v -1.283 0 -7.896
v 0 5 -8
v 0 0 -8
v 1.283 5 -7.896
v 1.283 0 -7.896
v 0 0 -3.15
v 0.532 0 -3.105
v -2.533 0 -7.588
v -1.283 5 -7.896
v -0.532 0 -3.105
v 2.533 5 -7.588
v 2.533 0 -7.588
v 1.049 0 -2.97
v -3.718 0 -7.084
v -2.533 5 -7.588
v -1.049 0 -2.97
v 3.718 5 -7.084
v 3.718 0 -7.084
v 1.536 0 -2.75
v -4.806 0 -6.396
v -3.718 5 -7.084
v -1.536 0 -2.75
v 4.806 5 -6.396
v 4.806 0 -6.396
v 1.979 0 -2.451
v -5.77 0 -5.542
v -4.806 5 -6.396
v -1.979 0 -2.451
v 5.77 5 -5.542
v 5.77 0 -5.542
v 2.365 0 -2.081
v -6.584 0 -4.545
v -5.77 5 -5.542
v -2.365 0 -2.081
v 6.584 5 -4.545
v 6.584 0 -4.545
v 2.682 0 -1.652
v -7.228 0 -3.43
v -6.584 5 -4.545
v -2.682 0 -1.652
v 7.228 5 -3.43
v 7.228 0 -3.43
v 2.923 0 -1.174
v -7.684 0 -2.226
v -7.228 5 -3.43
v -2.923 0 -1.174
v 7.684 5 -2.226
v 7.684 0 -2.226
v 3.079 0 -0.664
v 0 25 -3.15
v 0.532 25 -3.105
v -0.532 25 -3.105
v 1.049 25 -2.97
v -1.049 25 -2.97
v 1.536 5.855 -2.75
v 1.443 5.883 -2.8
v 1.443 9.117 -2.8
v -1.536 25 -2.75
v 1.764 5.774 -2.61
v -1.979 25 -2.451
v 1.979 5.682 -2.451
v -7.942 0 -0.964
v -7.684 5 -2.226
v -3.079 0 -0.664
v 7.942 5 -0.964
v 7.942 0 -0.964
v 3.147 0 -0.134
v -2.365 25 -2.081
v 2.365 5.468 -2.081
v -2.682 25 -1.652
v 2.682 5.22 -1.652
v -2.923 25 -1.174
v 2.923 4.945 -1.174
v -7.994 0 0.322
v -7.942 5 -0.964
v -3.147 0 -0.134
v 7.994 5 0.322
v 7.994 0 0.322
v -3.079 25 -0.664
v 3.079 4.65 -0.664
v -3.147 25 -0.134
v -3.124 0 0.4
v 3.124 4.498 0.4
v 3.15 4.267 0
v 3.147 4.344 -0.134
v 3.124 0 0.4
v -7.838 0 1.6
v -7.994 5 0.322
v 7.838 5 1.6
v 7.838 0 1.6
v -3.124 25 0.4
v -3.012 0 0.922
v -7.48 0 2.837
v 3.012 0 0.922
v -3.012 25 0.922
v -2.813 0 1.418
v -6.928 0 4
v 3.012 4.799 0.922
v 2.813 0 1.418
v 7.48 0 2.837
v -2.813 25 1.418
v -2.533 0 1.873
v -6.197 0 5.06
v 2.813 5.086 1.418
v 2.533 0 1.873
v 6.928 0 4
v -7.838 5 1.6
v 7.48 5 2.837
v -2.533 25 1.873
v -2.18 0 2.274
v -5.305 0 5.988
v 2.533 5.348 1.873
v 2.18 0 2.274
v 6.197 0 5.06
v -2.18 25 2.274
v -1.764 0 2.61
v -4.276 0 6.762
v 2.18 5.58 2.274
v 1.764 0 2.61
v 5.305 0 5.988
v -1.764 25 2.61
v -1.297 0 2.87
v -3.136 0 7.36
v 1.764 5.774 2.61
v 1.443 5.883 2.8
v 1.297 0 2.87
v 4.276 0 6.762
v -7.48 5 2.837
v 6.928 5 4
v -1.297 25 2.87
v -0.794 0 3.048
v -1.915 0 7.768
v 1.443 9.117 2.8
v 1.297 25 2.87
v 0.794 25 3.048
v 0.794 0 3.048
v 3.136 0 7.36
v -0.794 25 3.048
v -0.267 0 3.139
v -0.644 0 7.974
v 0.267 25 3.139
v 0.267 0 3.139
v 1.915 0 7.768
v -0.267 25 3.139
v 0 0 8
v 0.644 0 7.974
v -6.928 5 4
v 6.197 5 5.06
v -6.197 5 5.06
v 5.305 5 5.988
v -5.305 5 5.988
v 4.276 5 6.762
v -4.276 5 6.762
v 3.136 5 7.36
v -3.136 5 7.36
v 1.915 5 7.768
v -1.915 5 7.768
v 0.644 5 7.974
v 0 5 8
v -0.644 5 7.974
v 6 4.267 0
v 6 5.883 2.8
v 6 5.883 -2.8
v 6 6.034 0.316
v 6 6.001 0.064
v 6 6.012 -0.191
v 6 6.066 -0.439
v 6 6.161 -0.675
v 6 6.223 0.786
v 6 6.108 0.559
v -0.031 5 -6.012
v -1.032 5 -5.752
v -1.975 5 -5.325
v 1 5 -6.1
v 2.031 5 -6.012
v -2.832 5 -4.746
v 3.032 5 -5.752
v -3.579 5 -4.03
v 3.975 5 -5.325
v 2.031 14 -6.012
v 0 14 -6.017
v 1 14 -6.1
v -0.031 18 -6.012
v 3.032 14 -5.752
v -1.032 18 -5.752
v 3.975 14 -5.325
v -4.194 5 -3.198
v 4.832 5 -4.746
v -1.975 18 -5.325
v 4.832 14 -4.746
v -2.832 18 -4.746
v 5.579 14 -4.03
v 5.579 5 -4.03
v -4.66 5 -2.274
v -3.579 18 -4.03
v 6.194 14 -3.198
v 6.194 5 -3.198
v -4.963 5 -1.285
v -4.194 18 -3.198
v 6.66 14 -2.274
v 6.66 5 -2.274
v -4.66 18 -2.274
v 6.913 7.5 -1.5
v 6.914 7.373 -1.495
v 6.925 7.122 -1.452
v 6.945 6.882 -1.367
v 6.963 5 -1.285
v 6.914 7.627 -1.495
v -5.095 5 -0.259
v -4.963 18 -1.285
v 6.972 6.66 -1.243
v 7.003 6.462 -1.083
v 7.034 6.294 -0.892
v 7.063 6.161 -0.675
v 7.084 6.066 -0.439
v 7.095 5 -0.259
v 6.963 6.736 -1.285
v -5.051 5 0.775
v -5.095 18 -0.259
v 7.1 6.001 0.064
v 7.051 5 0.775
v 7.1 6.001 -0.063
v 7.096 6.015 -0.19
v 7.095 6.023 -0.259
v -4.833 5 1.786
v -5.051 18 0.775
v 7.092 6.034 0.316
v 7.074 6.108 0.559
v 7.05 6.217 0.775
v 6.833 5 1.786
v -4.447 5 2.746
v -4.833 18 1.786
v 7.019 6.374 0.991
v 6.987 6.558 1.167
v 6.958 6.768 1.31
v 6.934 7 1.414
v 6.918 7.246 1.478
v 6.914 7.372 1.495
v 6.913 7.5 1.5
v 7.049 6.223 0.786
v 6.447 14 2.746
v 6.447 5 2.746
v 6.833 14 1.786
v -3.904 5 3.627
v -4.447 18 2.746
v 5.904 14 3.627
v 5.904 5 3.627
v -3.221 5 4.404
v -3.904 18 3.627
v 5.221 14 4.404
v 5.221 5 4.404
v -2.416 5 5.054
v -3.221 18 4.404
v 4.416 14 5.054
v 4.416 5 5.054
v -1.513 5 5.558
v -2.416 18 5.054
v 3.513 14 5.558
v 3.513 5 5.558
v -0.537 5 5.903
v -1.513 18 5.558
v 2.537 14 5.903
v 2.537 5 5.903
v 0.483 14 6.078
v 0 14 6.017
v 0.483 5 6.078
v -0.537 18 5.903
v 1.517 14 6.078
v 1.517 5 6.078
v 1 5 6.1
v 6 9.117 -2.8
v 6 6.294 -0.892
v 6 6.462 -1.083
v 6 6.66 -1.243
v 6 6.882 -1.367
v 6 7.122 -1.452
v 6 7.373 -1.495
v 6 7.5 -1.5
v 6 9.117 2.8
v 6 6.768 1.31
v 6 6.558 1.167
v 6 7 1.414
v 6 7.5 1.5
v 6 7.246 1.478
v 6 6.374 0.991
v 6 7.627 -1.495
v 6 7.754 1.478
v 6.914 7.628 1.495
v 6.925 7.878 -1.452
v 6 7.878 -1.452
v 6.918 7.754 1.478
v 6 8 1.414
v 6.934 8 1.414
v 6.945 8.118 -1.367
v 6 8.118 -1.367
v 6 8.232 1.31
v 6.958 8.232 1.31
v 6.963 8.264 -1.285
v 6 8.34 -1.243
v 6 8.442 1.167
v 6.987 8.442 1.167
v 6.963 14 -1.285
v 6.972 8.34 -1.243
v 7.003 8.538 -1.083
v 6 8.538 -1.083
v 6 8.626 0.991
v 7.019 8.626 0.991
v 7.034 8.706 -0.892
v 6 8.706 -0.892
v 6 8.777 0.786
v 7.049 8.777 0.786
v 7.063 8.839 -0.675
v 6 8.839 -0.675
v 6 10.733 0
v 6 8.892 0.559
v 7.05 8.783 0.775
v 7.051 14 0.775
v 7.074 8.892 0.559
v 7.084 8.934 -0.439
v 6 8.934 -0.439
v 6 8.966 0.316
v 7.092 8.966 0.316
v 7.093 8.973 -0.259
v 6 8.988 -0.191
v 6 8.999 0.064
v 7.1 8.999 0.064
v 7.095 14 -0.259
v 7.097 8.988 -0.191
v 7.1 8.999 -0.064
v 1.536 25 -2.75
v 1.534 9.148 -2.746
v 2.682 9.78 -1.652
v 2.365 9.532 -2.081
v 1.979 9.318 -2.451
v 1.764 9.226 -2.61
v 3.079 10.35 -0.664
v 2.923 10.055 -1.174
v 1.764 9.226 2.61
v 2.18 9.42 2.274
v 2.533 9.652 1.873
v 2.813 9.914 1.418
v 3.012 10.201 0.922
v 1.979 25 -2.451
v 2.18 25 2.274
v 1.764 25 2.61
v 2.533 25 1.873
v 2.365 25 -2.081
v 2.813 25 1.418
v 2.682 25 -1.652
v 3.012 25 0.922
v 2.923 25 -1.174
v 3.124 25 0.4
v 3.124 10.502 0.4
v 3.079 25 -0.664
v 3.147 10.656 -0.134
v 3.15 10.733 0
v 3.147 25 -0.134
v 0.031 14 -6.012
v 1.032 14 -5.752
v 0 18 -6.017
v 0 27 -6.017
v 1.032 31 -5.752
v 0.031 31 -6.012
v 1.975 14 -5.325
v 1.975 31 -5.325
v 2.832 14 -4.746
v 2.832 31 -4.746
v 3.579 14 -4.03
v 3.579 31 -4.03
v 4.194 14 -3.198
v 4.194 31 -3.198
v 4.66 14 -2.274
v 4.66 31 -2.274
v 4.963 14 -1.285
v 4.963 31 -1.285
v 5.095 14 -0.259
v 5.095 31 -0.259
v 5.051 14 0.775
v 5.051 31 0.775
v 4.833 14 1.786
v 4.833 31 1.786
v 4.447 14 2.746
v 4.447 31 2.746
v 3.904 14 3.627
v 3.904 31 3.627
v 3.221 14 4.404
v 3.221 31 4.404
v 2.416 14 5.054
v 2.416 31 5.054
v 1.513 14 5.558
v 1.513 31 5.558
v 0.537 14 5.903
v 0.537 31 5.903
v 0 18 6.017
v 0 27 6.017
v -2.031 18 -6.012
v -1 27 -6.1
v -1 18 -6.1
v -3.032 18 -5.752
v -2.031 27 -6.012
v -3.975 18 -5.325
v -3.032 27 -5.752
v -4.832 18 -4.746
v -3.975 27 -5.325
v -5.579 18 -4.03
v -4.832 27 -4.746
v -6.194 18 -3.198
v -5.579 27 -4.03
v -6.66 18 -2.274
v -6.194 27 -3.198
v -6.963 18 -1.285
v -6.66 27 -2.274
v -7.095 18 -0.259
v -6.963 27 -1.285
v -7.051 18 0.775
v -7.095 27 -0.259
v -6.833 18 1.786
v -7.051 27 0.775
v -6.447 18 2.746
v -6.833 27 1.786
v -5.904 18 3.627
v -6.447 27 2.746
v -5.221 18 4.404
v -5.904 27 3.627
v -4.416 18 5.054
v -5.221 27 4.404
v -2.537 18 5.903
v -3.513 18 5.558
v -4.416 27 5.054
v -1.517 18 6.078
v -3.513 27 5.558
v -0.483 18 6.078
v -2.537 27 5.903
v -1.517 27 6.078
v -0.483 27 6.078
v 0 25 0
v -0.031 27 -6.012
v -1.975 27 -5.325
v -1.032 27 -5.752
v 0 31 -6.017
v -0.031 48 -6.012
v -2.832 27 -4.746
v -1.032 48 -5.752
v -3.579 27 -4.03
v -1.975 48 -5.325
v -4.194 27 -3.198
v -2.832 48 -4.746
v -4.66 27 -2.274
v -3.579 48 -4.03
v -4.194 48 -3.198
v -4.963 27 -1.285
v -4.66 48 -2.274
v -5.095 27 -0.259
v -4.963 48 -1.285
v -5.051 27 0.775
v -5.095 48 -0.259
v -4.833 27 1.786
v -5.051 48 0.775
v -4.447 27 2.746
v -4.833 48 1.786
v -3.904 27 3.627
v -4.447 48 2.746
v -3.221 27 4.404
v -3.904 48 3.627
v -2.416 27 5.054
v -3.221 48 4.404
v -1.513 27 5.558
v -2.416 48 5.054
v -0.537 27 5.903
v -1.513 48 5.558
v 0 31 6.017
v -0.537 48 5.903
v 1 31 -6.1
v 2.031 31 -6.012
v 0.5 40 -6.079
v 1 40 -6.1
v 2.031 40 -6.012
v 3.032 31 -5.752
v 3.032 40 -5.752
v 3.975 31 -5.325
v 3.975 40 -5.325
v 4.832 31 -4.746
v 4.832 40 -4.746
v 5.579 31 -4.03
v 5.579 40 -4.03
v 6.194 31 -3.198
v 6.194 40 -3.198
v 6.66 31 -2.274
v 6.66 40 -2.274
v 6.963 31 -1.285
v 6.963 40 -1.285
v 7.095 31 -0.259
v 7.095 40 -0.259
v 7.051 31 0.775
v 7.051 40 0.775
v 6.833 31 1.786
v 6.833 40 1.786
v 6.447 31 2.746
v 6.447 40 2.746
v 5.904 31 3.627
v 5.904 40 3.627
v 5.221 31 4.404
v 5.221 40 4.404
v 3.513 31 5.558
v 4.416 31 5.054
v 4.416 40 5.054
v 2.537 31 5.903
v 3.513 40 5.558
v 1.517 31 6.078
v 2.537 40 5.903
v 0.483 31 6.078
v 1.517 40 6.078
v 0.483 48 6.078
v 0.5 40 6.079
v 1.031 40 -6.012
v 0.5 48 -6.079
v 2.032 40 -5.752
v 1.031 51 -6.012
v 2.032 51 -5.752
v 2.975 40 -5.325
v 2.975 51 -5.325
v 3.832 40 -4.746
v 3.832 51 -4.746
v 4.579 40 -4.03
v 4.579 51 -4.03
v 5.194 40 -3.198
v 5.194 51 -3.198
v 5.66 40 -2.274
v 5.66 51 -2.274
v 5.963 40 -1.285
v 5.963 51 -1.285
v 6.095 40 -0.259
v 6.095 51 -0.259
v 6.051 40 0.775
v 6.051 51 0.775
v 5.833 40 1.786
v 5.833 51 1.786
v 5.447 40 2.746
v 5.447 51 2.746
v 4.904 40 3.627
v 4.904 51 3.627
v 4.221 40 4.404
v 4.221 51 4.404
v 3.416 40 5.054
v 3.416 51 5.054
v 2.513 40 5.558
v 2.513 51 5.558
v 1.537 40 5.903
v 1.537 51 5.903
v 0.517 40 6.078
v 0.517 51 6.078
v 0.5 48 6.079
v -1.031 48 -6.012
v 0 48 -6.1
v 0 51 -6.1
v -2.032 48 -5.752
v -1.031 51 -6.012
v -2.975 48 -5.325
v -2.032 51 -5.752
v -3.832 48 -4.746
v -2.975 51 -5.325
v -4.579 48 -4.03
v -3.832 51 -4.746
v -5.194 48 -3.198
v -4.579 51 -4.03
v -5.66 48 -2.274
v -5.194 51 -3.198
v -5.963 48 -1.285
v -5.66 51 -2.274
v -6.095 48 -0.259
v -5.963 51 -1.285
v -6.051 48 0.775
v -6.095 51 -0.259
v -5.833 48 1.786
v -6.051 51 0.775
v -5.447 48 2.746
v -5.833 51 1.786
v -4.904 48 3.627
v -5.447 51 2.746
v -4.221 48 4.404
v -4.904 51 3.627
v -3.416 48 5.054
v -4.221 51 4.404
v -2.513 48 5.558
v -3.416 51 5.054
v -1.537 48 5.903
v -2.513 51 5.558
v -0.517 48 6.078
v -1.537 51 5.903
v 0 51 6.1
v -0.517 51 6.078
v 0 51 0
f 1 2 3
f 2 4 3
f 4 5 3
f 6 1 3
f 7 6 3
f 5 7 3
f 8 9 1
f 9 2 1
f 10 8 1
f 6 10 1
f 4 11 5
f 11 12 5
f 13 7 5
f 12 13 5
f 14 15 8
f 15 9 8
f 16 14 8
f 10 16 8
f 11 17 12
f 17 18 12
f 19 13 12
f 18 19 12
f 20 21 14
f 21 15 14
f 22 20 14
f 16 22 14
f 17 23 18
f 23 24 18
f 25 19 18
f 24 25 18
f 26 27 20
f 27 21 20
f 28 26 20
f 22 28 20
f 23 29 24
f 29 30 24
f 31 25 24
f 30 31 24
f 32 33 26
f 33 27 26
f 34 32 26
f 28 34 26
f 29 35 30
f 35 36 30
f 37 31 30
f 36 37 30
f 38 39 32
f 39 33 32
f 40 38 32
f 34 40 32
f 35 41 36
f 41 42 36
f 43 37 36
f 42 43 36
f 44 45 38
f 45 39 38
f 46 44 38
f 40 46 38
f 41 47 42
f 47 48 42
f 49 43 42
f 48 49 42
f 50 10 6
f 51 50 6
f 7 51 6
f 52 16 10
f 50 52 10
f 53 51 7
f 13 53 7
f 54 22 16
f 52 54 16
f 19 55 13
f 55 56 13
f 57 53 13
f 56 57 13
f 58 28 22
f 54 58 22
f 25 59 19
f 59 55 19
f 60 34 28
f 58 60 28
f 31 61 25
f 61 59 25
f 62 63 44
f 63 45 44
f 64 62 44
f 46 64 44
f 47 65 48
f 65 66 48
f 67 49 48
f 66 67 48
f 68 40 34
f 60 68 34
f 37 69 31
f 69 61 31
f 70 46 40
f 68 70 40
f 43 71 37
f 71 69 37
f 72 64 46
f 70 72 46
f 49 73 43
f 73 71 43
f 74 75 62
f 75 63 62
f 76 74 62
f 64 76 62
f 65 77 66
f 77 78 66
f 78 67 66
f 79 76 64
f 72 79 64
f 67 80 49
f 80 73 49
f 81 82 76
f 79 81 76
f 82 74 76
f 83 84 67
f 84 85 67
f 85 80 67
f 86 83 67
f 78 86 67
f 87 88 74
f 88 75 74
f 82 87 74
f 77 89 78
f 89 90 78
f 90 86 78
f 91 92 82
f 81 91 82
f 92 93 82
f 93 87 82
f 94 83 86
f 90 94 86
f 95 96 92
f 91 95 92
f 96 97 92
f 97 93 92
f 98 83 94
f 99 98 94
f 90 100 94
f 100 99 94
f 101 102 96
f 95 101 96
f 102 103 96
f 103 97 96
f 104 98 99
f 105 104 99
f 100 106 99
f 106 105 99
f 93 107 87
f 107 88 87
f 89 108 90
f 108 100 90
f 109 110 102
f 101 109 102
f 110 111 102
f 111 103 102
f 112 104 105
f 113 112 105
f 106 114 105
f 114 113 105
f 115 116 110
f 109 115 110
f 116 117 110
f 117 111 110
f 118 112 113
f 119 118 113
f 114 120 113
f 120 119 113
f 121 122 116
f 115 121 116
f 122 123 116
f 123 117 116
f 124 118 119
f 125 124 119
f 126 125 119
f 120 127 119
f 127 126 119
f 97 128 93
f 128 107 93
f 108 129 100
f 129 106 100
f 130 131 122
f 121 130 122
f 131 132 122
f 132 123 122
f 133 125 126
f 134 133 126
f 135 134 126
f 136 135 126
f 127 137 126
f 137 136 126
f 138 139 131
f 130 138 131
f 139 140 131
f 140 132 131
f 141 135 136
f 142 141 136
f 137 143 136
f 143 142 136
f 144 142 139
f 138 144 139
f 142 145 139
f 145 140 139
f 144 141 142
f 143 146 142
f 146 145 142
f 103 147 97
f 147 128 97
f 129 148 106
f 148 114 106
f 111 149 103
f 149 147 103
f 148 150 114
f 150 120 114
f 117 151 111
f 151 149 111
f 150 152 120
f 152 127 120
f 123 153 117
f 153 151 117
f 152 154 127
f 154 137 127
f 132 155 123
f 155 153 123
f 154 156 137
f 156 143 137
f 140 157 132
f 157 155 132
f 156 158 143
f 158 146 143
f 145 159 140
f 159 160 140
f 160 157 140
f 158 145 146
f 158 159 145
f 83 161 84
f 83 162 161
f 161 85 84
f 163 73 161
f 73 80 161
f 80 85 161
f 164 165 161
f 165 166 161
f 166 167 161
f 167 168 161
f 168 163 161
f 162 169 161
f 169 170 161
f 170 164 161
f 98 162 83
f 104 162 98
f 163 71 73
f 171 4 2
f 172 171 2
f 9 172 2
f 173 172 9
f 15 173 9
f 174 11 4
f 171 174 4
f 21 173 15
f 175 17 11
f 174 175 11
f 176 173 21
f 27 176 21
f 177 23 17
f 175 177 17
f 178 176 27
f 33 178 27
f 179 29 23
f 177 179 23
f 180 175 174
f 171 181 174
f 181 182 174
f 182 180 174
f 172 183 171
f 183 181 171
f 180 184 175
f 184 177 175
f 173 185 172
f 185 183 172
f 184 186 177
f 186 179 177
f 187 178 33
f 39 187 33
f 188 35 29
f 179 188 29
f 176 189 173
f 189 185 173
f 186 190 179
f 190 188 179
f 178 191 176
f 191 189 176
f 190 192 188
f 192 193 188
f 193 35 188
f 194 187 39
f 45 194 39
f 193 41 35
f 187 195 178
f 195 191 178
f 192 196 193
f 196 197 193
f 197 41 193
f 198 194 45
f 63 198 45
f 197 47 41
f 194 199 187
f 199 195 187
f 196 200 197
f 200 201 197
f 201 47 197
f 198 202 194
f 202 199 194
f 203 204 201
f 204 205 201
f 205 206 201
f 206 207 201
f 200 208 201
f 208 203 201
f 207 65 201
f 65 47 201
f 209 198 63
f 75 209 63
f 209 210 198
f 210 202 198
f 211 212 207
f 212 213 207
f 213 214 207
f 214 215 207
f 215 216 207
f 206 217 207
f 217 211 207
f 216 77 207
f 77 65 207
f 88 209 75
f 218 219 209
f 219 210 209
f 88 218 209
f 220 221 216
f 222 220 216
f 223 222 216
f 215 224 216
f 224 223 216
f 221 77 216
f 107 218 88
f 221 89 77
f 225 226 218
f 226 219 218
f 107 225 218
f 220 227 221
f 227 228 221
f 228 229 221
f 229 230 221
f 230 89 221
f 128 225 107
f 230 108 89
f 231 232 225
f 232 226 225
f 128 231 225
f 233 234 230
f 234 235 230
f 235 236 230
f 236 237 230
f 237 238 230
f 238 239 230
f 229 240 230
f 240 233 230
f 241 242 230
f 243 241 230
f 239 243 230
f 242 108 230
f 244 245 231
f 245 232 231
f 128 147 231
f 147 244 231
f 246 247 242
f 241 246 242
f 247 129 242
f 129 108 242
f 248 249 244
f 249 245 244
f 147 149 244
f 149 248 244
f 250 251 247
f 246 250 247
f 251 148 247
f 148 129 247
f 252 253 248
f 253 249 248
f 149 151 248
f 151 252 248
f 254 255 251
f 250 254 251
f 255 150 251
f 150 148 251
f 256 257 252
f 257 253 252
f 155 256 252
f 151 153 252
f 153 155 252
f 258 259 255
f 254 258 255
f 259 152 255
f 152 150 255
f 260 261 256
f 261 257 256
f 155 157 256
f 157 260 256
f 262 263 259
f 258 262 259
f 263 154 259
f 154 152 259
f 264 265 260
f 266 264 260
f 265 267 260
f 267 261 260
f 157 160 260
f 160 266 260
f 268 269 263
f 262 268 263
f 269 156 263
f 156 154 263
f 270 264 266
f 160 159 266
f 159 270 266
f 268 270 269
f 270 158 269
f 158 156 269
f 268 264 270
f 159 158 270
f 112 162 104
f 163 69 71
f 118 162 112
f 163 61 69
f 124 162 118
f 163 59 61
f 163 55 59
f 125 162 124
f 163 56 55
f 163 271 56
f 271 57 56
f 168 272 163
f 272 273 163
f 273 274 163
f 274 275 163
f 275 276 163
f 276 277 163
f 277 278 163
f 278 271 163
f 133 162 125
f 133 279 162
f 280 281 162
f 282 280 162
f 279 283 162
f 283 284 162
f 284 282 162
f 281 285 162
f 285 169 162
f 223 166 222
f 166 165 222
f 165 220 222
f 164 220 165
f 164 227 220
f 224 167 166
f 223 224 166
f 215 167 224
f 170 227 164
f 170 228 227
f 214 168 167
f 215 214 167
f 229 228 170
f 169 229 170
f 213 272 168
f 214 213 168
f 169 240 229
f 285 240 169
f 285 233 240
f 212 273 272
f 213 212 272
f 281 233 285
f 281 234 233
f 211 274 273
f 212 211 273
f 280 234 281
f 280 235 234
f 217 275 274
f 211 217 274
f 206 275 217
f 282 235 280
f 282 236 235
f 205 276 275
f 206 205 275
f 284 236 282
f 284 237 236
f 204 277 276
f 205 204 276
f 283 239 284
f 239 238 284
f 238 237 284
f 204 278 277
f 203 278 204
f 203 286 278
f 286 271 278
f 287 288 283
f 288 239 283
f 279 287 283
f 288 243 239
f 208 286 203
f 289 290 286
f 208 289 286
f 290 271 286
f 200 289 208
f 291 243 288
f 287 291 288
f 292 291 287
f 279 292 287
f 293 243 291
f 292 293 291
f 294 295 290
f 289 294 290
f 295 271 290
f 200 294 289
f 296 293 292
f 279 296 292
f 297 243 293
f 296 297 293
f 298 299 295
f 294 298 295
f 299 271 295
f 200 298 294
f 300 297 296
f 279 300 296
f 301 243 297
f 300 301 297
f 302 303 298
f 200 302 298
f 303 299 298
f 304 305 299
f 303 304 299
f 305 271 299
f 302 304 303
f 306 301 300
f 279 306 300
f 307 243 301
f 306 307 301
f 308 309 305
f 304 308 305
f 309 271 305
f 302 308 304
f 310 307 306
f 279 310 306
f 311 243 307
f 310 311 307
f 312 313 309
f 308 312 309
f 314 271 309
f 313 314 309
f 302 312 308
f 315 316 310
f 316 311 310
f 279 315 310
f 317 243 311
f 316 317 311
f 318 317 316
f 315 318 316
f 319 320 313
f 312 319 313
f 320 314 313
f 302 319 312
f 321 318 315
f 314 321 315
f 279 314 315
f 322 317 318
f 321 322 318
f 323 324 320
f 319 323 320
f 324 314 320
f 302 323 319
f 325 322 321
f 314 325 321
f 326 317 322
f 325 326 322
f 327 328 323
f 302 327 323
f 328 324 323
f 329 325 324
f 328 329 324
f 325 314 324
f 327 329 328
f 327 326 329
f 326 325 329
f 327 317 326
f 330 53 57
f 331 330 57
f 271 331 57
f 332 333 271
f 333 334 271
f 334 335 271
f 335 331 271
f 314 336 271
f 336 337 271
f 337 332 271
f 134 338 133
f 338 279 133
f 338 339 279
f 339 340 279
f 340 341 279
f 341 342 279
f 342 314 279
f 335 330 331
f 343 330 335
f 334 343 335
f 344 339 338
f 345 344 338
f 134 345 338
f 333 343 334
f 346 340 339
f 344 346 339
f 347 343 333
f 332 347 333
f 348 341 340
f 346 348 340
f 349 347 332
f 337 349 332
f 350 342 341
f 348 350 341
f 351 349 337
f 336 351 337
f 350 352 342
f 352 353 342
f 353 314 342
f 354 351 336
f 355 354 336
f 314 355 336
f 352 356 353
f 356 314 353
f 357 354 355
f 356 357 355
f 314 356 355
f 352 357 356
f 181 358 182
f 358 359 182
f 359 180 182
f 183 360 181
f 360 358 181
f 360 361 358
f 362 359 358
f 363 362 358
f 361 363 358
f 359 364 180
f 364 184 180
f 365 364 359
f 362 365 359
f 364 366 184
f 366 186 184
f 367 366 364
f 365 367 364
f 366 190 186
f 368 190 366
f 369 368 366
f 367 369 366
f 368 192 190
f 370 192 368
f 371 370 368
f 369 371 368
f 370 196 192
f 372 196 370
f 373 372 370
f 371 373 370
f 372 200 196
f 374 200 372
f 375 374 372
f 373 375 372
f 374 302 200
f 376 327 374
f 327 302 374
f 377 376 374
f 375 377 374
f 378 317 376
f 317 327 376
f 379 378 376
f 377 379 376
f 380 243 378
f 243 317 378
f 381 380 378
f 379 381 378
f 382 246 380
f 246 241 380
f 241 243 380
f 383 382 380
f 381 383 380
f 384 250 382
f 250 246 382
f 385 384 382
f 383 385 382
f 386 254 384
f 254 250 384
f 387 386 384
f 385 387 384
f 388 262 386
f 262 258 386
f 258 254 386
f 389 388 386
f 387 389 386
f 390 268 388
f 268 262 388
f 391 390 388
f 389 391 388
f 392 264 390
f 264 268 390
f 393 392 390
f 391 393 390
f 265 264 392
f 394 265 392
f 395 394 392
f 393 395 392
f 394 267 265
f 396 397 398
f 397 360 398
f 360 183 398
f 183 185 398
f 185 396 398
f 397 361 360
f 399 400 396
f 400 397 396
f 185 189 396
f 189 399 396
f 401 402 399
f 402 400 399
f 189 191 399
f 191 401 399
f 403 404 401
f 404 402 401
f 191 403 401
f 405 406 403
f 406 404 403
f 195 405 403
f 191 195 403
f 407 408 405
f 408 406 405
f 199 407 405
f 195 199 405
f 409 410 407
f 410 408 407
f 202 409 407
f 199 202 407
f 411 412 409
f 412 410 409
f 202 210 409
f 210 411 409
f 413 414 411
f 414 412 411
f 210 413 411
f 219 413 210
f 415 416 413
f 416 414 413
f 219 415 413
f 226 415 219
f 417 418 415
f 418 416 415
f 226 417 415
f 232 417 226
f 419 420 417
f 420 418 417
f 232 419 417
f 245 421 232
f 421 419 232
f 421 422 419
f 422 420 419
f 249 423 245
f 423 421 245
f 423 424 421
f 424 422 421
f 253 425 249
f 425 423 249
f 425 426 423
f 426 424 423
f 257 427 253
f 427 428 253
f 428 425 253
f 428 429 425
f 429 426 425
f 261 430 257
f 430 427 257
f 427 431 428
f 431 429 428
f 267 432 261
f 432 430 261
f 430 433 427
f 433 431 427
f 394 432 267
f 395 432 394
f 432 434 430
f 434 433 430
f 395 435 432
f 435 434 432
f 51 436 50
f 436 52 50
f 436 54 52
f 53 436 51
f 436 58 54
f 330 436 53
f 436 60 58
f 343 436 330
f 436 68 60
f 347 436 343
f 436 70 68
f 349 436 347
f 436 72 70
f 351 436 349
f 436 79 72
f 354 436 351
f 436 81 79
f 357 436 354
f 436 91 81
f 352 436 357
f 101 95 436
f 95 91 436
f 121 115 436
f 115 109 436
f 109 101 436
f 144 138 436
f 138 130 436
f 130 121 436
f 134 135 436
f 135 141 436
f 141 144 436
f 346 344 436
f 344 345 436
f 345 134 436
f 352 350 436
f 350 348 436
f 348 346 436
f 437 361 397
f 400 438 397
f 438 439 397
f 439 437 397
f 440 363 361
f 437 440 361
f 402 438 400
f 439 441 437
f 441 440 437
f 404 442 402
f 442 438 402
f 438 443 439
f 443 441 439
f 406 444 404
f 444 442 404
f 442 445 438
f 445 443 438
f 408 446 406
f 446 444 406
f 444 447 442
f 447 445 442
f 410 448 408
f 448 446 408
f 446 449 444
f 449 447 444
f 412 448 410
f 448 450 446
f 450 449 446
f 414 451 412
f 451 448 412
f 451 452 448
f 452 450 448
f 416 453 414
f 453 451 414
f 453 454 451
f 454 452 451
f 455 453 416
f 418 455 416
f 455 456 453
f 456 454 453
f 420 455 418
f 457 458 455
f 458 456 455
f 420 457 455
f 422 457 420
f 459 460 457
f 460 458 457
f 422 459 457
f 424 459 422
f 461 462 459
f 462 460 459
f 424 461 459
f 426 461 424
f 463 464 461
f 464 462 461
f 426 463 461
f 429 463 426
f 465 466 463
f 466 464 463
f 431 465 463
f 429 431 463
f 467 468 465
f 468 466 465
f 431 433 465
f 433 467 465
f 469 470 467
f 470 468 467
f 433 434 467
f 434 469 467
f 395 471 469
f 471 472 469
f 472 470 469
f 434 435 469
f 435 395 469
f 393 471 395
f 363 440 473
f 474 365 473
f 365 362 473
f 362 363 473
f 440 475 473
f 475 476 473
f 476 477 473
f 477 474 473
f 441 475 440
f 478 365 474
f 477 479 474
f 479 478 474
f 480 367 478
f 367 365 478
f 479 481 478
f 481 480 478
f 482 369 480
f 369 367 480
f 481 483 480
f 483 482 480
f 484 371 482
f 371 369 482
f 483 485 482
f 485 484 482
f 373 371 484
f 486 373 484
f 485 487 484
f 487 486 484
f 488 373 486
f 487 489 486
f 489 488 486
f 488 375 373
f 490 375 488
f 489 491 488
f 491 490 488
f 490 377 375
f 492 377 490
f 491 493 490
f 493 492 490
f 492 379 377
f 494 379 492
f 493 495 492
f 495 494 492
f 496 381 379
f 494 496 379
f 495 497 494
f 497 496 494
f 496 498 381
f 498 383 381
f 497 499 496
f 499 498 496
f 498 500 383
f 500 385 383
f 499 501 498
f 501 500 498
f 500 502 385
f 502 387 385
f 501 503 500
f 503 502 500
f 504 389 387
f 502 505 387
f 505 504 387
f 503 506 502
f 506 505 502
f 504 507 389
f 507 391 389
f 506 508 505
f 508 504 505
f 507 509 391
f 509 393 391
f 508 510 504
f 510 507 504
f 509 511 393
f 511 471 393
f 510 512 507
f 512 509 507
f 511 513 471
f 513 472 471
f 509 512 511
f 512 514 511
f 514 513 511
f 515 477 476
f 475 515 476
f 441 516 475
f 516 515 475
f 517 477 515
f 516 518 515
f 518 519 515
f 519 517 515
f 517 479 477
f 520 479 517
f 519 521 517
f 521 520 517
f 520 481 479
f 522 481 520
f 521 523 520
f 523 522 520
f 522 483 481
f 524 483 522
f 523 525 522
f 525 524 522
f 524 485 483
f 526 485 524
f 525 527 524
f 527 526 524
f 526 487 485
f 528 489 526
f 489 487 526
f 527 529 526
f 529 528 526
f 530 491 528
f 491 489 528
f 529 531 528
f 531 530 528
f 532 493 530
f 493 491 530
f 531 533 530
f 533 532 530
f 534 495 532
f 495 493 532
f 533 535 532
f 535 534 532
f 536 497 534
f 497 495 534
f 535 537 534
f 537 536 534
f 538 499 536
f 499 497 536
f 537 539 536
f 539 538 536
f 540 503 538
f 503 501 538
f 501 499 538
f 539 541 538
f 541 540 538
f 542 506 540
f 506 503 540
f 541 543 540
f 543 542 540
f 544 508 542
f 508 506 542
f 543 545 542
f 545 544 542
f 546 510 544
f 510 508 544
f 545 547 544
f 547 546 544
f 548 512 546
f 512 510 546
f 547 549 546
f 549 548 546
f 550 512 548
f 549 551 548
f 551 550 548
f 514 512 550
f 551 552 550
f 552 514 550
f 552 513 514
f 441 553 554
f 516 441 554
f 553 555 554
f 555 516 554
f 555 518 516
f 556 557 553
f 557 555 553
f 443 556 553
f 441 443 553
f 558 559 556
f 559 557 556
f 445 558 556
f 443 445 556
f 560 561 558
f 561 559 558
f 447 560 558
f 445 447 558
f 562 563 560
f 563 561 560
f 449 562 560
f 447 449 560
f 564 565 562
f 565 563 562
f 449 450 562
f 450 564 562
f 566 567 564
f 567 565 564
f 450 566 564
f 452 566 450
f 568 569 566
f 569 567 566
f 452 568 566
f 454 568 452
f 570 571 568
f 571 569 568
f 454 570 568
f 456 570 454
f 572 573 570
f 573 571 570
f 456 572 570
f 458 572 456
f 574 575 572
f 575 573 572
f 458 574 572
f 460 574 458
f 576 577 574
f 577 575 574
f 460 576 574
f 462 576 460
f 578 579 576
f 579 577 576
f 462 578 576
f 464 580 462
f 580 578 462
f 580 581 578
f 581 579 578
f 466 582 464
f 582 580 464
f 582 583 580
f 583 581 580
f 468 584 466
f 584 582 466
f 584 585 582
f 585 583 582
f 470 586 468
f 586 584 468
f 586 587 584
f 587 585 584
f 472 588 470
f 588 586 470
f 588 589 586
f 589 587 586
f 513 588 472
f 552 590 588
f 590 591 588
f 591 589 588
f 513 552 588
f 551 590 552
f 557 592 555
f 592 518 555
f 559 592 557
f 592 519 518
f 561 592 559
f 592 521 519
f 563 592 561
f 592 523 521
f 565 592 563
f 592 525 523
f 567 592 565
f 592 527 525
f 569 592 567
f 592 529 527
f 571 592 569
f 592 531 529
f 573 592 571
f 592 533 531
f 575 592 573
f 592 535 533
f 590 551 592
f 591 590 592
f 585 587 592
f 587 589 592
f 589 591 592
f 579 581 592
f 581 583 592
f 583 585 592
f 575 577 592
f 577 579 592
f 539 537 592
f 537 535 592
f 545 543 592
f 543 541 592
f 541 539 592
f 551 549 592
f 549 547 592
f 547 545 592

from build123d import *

# Parameters (mm, degrees)
SKETCH1_R           = 8
BOSS_EXTRUDE1_DEPTH = 5
SKETCH2_R           = 6.1
BOSS_EXTRUDE2_DEPTH = 9
SKETCH3_R           = 6.1
BOSS_EXTRUDE3_DEPTH = 17
SKETCH4_R           = 6.1
BOSS_EXTRUDE4_DEPTH = 9
CUT_EXTRUDE1_START  = -4
CUT_EXTRUDE1_DEPTH  = 4
CUT_EXTRUDE2_DEPTH  = 4
SKETCH7_R           = 6.1
BOSS_EXTRUDE5_DEPTH = 11
CUT_EXTRUDE3_DEPTH  = 8
SKETCH9_R           = 3.15
CUT_EXTRUDE4_DEPTH  = 25
SKETCH10_R          = 1.5
CUT_EXTRUDE5_DEPTH  = 53.239831546
SKETCH11_R          = 1.5
CUT_EXTRUDE6_DEPTH  = 6


with BuildPart() as part:
    # Sketch1 → Boss-Extrude1 (new body)
    with BuildSketch(Plane(origin=(0, 0, 0), x_dir=(1, 0, 0), z_dir=(0, 1, 0))):
        with Locations(Location((0, 0, 0), (0, 0, 270))):
            Circle(SKETCH1_R)
    extrude(amount=BOSS_EXTRUDE1_DEPTH)

    # Sketch2 → Boss-Extrude2 (add)
    with BuildSketch(Plane(origin=(0, 5, 0), x_dir=(1, 0, 0), z_dir=(0, 1, 0))):
        with Locations(Location((1, 0, 0), (0, 0, 270))):
            Circle(SKETCH2_R)
    extrude(amount=BOSS_EXTRUDE2_DEPTH)

    # Sketch3 → Boss-Extrude3 (add)
    with BuildSketch(Plane(origin=(0, 14, 0), x_dir=(1, 0, 0), z_dir=(0, 1, 0))):
        with Locations(Location((-1, 0, 0), (0, 0, 80.564661277))):
            Circle(SKETCH3_R)
    extrude(amount=BOSS_EXTRUDE3_DEPTH)

    # Sketch4 → Boss-Extrude4 (add)
    with BuildSketch(Plane(origin=(0, 31, 0), x_dir=(1, 0, 0), z_dir=(0, 1, 0))):
        with Locations(Location((1, 0, 0), (0, 0, 99.435338723))):
            Circle(SKETCH4_R)
    extrude(amount=BOSS_EXTRUDE4_DEPTH)

    # Sketch5 → Cut-Extrude1 (cut)
    with BuildSketch(Plane(origin=(0, 31, 0), x_dir=(1, 0, 0), z_dir=(0, 1, 0)).offset(CUT_EXTRUDE1_START)):
        with BuildLine():
            ThreePointArc((0, 6.017474553), (-5.1, 0), (0, -6.017474553))
            ThreePointArc((0, -6.017474553), (-7.1, 0), (0, 6.017474553))
        make_face()
    extrude(amount=CUT_EXTRUDE1_DEPTH, mode=Mode.SUBTRACT)

    # Sketch6 → Cut-Extrude2 (cut)
    with BuildSketch(Plane.XZ.offset(-14)):
        with BuildLine():
            ThreePointArc((0, 6.017474553), (-7.1, 0), (0, -6.017474553))
            ThreePointArc((0, -6.017474553), (-5.1, 0), (0, 6.017474553))
        make_face()
    extrude(amount=-CUT_EXTRUDE2_DEPTH, mode=Mode.SUBTRACT)

    # Sketch7 → Boss-Extrude5 (add)
    with BuildSketch(Plane(origin=(0, 40, 0), x_dir=(1, 0, 0), z_dir=(0, 1, 0))):
        with Locations(Location((0, 0, 0), (0, 0, 85.298349803))):
            Circle(SKETCH7_R)
    extrude(amount=BOSS_EXTRUDE5_DEPTH)

    # Sketch8 → Cut-Extrude3 (cut)
    with BuildSketch(Plane.XZ.offset(-40)):
        with BuildLine():
            ThreePointArc((0.5, 6.079473661), (-6.1, 0), (0.5, -6.079473661))
            ThreePointArc((0.5, -6.079473661), (-5.1, 0), (0.5, 6.079473661))
        make_face()
    extrude(amount=-CUT_EXTRUDE3_DEPTH, mode=Mode.SUBTRACT)

    # Sketch9 → Cut-Extrude4 (cut)
    with BuildSketch(Plane.XZ):
        with Locations(Location((0, 0, 0), (0, 0, 270))):
            Circle(SKETCH9_R)
    extrude(amount=-CUT_EXTRUDE4_DEPTH, mode=Mode.SUBTRACT)

    # Sketch10 → Cut-Extrude5 (cut, through all)
    with BuildSketch(Plane(origin=(0, 0, 0), x_dir=(0, 0, -1), z_dir=(1, 0, 0))):
        with Locations(Location((0, 7.5, 0), (0, 0, 180))):
            Circle(SKETCH10_R)
    extrude(amount=CUT_EXTRUDE5_DEPTH, mode=Mode.SUBTRACT)

    # Sketch11 → Cut-Extrude6 (cut)
    with BuildSketch(Plane(origin=(0, 0, 0), x_dir=(0, 0, -1), z_dir=(1, 0, 0))):
        Polygon((0, 10.733161507), (-2.8, 9.116580754), (-2.8, 5.883419246), (0, 4.266838493), (2.8, 5.883419246), (2.8, 9.116580754), align=None)
        with Locations(Location((0, 7.5, 0), (0, 0, 180))):
            Circle(SKETCH11_R, mode=Mode.SUBTRACT)
    extrude(amount=CUT_EXTRUDE6_DEPTH, mode=Mode.SUBTRACT)


solid = part.part
